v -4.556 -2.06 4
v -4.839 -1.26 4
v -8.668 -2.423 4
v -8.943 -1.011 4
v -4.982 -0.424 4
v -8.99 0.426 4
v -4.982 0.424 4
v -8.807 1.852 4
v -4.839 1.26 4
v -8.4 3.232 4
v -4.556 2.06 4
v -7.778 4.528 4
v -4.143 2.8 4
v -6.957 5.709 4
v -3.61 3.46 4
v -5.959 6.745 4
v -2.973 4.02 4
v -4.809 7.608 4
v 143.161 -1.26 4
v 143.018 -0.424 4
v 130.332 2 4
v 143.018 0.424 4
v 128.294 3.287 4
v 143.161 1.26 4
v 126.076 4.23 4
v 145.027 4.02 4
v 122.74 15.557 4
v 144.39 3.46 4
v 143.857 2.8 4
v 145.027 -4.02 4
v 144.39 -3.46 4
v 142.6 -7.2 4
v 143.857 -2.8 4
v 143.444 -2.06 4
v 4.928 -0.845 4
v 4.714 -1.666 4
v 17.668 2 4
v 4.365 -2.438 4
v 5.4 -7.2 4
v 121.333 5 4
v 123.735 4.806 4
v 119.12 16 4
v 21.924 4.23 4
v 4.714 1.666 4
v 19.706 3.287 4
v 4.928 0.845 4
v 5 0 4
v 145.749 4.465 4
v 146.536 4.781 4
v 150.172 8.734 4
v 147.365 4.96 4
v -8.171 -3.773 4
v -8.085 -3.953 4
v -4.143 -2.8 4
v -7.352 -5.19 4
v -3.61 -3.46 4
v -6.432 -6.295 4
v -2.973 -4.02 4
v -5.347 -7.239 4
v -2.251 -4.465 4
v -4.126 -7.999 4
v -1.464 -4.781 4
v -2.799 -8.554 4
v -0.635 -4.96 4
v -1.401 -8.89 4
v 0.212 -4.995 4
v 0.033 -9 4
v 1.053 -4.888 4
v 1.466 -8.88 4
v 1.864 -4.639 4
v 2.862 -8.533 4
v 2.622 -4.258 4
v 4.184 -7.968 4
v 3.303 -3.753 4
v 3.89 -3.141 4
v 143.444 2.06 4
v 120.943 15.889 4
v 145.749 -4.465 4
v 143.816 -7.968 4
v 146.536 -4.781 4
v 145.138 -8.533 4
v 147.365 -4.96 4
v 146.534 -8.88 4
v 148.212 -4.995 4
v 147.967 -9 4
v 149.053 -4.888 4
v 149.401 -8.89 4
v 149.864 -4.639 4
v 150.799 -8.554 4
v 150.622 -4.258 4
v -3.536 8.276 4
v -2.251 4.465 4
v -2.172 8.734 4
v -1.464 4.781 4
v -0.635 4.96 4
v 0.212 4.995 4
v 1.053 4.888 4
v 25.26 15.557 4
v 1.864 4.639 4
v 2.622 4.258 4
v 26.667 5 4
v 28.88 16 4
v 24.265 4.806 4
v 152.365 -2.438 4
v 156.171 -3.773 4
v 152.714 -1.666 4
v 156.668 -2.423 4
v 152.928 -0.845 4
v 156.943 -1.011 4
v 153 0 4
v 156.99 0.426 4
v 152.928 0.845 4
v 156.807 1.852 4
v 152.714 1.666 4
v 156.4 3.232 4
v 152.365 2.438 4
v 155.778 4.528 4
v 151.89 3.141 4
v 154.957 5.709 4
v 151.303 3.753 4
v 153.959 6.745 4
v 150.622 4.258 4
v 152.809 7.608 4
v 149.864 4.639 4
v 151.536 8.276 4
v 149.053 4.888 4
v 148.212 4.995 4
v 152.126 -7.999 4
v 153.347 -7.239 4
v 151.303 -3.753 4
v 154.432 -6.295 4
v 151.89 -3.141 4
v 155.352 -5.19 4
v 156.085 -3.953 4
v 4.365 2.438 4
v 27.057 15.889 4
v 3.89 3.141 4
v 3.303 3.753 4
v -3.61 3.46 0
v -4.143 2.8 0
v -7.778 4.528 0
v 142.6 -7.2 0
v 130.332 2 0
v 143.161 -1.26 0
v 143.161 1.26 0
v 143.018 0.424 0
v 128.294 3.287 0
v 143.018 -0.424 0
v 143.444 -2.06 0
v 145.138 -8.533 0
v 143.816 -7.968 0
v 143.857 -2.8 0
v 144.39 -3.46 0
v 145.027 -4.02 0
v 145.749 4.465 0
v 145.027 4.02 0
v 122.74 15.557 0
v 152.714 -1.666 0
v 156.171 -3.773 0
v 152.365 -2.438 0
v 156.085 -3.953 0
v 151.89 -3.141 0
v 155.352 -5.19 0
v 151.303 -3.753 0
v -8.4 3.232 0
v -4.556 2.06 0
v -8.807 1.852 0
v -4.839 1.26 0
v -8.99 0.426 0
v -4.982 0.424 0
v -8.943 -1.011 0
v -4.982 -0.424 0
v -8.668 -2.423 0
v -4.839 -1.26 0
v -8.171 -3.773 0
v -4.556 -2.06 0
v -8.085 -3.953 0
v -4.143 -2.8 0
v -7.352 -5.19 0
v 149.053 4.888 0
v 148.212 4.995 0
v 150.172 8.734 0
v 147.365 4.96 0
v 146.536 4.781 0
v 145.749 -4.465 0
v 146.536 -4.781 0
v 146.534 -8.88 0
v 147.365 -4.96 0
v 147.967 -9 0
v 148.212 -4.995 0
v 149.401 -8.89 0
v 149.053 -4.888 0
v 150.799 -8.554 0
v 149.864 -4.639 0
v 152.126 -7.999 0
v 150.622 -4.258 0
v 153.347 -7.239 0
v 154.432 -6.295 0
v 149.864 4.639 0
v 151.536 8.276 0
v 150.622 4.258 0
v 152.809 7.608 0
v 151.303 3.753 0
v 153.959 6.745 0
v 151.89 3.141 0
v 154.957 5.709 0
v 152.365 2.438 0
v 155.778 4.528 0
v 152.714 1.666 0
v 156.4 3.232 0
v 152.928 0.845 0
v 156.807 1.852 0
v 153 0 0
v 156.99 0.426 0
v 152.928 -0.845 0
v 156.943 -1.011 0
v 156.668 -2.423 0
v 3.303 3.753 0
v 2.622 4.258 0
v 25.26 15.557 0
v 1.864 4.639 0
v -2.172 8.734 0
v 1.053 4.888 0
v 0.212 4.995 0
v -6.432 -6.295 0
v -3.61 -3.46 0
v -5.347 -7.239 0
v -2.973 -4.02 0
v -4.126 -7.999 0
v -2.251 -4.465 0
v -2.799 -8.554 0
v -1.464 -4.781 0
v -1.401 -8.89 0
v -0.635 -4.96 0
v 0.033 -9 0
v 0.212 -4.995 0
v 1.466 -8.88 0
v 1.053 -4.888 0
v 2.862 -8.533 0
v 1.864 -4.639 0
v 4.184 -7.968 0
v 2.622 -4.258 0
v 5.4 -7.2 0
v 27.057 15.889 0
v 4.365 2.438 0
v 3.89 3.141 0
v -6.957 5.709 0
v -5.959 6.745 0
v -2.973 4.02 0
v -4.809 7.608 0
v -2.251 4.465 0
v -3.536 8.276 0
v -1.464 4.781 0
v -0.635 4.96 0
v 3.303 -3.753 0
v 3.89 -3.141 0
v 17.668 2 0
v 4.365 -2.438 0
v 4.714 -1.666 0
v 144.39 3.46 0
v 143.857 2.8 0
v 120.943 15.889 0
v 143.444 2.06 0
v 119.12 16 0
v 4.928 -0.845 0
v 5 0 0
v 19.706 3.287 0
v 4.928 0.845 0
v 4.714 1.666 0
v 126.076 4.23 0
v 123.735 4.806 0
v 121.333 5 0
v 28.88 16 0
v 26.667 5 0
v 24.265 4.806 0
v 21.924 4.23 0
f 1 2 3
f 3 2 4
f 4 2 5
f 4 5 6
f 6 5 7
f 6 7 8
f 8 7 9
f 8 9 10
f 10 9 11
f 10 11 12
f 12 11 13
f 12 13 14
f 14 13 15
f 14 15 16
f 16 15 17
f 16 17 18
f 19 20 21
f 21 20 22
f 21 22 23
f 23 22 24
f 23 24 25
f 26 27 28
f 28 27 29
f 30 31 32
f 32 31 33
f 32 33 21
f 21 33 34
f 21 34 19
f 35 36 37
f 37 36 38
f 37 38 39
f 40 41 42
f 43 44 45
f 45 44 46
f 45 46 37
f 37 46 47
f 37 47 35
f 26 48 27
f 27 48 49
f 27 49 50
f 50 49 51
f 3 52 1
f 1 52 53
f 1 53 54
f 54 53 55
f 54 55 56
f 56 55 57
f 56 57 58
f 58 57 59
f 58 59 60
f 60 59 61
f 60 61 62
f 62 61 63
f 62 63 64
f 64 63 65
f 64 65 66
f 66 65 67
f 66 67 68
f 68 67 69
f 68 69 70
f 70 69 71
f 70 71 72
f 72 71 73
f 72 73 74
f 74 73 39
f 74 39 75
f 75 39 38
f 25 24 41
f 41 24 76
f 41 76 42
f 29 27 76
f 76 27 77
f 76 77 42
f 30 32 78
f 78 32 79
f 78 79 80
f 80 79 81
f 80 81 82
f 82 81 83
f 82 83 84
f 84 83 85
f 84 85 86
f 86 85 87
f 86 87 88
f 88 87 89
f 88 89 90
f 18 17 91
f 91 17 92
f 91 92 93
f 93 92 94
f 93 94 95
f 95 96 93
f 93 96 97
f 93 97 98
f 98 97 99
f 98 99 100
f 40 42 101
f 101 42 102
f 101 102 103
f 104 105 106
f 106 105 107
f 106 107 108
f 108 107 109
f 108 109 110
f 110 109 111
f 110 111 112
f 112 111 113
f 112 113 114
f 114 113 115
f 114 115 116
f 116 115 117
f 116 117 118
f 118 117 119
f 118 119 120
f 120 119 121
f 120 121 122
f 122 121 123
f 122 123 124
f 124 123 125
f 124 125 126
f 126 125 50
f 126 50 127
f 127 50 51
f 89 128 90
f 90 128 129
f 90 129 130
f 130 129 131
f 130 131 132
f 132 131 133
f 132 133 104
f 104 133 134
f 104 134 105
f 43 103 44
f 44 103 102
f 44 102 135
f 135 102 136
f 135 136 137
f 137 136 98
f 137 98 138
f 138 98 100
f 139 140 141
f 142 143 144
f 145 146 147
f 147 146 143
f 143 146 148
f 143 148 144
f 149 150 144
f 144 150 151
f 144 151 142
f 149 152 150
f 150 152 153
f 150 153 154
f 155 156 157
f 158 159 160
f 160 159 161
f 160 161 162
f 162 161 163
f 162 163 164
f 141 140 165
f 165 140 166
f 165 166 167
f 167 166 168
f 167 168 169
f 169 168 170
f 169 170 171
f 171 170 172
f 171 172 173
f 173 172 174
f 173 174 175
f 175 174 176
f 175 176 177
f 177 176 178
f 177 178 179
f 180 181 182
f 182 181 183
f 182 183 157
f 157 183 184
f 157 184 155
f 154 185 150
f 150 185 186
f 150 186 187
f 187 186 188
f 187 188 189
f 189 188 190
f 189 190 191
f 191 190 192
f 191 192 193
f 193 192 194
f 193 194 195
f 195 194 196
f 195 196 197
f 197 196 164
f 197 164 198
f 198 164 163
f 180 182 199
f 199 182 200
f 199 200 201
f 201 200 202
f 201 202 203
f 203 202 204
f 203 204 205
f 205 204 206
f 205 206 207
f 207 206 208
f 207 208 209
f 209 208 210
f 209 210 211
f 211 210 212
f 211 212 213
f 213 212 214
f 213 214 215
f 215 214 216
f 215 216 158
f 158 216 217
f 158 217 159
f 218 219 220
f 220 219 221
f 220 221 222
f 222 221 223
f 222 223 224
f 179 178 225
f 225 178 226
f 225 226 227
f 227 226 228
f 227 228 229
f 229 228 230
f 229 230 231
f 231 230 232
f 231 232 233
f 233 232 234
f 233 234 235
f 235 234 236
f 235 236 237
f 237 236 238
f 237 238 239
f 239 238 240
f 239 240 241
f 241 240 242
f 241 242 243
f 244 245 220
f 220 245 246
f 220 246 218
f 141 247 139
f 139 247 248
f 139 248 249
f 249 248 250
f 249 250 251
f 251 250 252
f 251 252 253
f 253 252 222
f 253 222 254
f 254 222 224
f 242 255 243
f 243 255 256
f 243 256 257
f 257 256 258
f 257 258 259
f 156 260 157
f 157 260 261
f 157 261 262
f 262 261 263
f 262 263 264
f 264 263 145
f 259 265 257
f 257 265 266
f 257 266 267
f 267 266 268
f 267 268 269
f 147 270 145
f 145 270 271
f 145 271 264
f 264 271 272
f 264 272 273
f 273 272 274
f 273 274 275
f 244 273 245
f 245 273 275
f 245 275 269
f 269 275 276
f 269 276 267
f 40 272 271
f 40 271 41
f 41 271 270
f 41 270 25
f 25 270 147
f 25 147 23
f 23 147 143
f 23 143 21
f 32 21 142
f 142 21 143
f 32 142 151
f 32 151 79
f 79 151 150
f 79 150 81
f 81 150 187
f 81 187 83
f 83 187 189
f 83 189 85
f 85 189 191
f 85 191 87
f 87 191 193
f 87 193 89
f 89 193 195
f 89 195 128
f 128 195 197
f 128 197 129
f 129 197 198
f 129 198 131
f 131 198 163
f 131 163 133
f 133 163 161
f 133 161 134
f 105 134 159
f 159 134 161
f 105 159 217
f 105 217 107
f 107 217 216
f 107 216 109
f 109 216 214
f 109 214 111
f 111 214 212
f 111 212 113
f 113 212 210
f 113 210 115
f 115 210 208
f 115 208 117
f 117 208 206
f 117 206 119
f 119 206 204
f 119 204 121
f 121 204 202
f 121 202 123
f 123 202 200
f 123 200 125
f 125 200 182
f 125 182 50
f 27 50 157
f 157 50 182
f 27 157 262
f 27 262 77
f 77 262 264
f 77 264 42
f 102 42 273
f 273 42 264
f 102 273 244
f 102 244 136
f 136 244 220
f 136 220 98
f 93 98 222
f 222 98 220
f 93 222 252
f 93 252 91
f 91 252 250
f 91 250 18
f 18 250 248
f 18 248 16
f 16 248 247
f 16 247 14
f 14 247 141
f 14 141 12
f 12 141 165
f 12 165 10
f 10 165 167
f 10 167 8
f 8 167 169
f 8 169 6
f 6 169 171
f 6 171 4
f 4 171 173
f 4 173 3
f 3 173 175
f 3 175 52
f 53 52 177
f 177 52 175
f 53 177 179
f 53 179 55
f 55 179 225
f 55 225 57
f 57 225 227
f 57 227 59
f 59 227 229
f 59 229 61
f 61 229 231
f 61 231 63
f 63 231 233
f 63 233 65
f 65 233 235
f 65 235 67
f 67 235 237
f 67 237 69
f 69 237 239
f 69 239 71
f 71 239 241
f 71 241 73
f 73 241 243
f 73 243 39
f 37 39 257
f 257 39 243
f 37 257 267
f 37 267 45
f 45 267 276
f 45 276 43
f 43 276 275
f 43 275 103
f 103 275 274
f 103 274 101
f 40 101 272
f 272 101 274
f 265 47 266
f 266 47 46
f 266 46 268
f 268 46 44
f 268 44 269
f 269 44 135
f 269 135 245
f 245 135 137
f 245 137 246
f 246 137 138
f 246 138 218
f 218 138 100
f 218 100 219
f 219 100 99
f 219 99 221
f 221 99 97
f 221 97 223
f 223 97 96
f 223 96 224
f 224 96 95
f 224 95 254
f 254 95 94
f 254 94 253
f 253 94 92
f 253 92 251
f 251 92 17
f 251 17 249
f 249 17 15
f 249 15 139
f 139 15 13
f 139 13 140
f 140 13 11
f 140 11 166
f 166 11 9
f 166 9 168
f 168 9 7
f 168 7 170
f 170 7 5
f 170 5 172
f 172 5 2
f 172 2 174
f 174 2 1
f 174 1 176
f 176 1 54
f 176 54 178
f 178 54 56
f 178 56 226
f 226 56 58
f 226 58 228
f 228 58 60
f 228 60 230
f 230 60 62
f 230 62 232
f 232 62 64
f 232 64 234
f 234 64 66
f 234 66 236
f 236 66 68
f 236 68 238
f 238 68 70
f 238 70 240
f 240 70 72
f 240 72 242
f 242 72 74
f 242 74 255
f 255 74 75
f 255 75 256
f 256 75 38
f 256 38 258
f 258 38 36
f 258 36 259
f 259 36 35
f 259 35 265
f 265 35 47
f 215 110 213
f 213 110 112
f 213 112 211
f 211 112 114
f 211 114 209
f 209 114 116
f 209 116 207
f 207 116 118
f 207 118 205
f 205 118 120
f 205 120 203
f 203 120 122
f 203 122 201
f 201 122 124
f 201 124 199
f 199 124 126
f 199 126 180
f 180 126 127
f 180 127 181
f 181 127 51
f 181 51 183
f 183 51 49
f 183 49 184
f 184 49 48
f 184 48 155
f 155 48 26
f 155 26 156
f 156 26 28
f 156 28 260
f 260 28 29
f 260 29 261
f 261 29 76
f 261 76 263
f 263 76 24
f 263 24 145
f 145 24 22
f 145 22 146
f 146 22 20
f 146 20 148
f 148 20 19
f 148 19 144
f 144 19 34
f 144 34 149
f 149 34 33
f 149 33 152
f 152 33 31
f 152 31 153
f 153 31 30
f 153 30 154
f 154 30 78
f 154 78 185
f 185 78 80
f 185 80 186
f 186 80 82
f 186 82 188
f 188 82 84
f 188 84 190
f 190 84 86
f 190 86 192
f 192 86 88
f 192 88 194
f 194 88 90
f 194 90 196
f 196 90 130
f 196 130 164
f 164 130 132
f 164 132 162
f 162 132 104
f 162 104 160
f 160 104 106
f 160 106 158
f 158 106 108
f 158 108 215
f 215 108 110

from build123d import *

# Parameters (mm, degrees)
SKETCH_1_R          = 4.4
EXTRUDE_1_DEPTH     = 4
SKETCH_2_R          = 5
CUT_EXTRUDE_1_DEPTH = 158.863865621


with BuildPart() as part:
    # 草图1 → 凸台-拉伸1 (new body)
    with BuildSketch(Plane.XY):
        with BuildLine():
            Line((28.880385739, 16.000002151), (119.119616625, 16.000002151))
            ThreePointArc((119.119616625, 16.000002151), (120.9433115, 15.888727315), (122.739948861, 15.556553752))
            Line((122.739948861, 15.556553752), (150.172338317, 8.733896395))
            ThreePointArc((150.172338317, 8.733896395), (156.114779707, 3.892345091), (156.171177789, -3.772512896))
            Line((156.171177789, -3.772512896), (156.085333125, -3.953149157))
            ThreePointArc((156.085333125, -3.953149157), (150.10671868, -8.749956366), (142.6, -7.2))
            Line((142.6, -7.2), (130.332298736, 2.00024794))
            ThreePointArc((130.332298736, 2.00024794), (126.075849791, 4.230314828), (121.332629297, 5.000000026))
            Line((121.332629297, 5.000000026), (26.667370753, 5.000000026))
            ThreePointArc((26.667370753, 5.000000026), (21.92415066, 4.230315582), (17.667701778, 2.000249685))
            Line((17.667701778, 2.000249685), (5.400000428, -7.199998281))
            ThreePointArc((5.400000428, -7.199998281), (-2.106718252, -8.749954647), (-8.085332697, -3.953147439))
            Line((-8.085332697, -3.953147439), (-8.171177361, -3.772511177))
            ThreePointArc((-8.171177361, -3.772511177), (-8.114780484, 3.892344299), (-2.172343294, 8.73389677))
            Line((-2.172343294, 8.73389677), (25.260054408, 15.556553977))
            ThreePointArc((25.260054408, 15.556553977), (27.056691327, 15.888727372), (28.880385739, 16.000002151))
        make_face()
        with Locations((4.28e-07, 1.719e-06)):
            Circle(SKETCH_1_R, mode=Mode.SUBTRACT)
        with Locations((148, 0)):
            Circle(SKETCH_1_R, mode=Mode.SUBTRACT)
    extrude(amount=EXTRUDE_1_DEPTH)

    # 草图2 → 切除-拉伸1 (cut, through all)
    with BuildSketch(Plane.XY.offset(4)):
        Circle(SKETCH_2_R)
        with Locations((148, 0)):
            Circle(SKETCH_2_R)
    extrude(amount=-CUT_EXTRUDE_1_DEPTH, mode=Mode.SUBTRACT)


solid = part.part
